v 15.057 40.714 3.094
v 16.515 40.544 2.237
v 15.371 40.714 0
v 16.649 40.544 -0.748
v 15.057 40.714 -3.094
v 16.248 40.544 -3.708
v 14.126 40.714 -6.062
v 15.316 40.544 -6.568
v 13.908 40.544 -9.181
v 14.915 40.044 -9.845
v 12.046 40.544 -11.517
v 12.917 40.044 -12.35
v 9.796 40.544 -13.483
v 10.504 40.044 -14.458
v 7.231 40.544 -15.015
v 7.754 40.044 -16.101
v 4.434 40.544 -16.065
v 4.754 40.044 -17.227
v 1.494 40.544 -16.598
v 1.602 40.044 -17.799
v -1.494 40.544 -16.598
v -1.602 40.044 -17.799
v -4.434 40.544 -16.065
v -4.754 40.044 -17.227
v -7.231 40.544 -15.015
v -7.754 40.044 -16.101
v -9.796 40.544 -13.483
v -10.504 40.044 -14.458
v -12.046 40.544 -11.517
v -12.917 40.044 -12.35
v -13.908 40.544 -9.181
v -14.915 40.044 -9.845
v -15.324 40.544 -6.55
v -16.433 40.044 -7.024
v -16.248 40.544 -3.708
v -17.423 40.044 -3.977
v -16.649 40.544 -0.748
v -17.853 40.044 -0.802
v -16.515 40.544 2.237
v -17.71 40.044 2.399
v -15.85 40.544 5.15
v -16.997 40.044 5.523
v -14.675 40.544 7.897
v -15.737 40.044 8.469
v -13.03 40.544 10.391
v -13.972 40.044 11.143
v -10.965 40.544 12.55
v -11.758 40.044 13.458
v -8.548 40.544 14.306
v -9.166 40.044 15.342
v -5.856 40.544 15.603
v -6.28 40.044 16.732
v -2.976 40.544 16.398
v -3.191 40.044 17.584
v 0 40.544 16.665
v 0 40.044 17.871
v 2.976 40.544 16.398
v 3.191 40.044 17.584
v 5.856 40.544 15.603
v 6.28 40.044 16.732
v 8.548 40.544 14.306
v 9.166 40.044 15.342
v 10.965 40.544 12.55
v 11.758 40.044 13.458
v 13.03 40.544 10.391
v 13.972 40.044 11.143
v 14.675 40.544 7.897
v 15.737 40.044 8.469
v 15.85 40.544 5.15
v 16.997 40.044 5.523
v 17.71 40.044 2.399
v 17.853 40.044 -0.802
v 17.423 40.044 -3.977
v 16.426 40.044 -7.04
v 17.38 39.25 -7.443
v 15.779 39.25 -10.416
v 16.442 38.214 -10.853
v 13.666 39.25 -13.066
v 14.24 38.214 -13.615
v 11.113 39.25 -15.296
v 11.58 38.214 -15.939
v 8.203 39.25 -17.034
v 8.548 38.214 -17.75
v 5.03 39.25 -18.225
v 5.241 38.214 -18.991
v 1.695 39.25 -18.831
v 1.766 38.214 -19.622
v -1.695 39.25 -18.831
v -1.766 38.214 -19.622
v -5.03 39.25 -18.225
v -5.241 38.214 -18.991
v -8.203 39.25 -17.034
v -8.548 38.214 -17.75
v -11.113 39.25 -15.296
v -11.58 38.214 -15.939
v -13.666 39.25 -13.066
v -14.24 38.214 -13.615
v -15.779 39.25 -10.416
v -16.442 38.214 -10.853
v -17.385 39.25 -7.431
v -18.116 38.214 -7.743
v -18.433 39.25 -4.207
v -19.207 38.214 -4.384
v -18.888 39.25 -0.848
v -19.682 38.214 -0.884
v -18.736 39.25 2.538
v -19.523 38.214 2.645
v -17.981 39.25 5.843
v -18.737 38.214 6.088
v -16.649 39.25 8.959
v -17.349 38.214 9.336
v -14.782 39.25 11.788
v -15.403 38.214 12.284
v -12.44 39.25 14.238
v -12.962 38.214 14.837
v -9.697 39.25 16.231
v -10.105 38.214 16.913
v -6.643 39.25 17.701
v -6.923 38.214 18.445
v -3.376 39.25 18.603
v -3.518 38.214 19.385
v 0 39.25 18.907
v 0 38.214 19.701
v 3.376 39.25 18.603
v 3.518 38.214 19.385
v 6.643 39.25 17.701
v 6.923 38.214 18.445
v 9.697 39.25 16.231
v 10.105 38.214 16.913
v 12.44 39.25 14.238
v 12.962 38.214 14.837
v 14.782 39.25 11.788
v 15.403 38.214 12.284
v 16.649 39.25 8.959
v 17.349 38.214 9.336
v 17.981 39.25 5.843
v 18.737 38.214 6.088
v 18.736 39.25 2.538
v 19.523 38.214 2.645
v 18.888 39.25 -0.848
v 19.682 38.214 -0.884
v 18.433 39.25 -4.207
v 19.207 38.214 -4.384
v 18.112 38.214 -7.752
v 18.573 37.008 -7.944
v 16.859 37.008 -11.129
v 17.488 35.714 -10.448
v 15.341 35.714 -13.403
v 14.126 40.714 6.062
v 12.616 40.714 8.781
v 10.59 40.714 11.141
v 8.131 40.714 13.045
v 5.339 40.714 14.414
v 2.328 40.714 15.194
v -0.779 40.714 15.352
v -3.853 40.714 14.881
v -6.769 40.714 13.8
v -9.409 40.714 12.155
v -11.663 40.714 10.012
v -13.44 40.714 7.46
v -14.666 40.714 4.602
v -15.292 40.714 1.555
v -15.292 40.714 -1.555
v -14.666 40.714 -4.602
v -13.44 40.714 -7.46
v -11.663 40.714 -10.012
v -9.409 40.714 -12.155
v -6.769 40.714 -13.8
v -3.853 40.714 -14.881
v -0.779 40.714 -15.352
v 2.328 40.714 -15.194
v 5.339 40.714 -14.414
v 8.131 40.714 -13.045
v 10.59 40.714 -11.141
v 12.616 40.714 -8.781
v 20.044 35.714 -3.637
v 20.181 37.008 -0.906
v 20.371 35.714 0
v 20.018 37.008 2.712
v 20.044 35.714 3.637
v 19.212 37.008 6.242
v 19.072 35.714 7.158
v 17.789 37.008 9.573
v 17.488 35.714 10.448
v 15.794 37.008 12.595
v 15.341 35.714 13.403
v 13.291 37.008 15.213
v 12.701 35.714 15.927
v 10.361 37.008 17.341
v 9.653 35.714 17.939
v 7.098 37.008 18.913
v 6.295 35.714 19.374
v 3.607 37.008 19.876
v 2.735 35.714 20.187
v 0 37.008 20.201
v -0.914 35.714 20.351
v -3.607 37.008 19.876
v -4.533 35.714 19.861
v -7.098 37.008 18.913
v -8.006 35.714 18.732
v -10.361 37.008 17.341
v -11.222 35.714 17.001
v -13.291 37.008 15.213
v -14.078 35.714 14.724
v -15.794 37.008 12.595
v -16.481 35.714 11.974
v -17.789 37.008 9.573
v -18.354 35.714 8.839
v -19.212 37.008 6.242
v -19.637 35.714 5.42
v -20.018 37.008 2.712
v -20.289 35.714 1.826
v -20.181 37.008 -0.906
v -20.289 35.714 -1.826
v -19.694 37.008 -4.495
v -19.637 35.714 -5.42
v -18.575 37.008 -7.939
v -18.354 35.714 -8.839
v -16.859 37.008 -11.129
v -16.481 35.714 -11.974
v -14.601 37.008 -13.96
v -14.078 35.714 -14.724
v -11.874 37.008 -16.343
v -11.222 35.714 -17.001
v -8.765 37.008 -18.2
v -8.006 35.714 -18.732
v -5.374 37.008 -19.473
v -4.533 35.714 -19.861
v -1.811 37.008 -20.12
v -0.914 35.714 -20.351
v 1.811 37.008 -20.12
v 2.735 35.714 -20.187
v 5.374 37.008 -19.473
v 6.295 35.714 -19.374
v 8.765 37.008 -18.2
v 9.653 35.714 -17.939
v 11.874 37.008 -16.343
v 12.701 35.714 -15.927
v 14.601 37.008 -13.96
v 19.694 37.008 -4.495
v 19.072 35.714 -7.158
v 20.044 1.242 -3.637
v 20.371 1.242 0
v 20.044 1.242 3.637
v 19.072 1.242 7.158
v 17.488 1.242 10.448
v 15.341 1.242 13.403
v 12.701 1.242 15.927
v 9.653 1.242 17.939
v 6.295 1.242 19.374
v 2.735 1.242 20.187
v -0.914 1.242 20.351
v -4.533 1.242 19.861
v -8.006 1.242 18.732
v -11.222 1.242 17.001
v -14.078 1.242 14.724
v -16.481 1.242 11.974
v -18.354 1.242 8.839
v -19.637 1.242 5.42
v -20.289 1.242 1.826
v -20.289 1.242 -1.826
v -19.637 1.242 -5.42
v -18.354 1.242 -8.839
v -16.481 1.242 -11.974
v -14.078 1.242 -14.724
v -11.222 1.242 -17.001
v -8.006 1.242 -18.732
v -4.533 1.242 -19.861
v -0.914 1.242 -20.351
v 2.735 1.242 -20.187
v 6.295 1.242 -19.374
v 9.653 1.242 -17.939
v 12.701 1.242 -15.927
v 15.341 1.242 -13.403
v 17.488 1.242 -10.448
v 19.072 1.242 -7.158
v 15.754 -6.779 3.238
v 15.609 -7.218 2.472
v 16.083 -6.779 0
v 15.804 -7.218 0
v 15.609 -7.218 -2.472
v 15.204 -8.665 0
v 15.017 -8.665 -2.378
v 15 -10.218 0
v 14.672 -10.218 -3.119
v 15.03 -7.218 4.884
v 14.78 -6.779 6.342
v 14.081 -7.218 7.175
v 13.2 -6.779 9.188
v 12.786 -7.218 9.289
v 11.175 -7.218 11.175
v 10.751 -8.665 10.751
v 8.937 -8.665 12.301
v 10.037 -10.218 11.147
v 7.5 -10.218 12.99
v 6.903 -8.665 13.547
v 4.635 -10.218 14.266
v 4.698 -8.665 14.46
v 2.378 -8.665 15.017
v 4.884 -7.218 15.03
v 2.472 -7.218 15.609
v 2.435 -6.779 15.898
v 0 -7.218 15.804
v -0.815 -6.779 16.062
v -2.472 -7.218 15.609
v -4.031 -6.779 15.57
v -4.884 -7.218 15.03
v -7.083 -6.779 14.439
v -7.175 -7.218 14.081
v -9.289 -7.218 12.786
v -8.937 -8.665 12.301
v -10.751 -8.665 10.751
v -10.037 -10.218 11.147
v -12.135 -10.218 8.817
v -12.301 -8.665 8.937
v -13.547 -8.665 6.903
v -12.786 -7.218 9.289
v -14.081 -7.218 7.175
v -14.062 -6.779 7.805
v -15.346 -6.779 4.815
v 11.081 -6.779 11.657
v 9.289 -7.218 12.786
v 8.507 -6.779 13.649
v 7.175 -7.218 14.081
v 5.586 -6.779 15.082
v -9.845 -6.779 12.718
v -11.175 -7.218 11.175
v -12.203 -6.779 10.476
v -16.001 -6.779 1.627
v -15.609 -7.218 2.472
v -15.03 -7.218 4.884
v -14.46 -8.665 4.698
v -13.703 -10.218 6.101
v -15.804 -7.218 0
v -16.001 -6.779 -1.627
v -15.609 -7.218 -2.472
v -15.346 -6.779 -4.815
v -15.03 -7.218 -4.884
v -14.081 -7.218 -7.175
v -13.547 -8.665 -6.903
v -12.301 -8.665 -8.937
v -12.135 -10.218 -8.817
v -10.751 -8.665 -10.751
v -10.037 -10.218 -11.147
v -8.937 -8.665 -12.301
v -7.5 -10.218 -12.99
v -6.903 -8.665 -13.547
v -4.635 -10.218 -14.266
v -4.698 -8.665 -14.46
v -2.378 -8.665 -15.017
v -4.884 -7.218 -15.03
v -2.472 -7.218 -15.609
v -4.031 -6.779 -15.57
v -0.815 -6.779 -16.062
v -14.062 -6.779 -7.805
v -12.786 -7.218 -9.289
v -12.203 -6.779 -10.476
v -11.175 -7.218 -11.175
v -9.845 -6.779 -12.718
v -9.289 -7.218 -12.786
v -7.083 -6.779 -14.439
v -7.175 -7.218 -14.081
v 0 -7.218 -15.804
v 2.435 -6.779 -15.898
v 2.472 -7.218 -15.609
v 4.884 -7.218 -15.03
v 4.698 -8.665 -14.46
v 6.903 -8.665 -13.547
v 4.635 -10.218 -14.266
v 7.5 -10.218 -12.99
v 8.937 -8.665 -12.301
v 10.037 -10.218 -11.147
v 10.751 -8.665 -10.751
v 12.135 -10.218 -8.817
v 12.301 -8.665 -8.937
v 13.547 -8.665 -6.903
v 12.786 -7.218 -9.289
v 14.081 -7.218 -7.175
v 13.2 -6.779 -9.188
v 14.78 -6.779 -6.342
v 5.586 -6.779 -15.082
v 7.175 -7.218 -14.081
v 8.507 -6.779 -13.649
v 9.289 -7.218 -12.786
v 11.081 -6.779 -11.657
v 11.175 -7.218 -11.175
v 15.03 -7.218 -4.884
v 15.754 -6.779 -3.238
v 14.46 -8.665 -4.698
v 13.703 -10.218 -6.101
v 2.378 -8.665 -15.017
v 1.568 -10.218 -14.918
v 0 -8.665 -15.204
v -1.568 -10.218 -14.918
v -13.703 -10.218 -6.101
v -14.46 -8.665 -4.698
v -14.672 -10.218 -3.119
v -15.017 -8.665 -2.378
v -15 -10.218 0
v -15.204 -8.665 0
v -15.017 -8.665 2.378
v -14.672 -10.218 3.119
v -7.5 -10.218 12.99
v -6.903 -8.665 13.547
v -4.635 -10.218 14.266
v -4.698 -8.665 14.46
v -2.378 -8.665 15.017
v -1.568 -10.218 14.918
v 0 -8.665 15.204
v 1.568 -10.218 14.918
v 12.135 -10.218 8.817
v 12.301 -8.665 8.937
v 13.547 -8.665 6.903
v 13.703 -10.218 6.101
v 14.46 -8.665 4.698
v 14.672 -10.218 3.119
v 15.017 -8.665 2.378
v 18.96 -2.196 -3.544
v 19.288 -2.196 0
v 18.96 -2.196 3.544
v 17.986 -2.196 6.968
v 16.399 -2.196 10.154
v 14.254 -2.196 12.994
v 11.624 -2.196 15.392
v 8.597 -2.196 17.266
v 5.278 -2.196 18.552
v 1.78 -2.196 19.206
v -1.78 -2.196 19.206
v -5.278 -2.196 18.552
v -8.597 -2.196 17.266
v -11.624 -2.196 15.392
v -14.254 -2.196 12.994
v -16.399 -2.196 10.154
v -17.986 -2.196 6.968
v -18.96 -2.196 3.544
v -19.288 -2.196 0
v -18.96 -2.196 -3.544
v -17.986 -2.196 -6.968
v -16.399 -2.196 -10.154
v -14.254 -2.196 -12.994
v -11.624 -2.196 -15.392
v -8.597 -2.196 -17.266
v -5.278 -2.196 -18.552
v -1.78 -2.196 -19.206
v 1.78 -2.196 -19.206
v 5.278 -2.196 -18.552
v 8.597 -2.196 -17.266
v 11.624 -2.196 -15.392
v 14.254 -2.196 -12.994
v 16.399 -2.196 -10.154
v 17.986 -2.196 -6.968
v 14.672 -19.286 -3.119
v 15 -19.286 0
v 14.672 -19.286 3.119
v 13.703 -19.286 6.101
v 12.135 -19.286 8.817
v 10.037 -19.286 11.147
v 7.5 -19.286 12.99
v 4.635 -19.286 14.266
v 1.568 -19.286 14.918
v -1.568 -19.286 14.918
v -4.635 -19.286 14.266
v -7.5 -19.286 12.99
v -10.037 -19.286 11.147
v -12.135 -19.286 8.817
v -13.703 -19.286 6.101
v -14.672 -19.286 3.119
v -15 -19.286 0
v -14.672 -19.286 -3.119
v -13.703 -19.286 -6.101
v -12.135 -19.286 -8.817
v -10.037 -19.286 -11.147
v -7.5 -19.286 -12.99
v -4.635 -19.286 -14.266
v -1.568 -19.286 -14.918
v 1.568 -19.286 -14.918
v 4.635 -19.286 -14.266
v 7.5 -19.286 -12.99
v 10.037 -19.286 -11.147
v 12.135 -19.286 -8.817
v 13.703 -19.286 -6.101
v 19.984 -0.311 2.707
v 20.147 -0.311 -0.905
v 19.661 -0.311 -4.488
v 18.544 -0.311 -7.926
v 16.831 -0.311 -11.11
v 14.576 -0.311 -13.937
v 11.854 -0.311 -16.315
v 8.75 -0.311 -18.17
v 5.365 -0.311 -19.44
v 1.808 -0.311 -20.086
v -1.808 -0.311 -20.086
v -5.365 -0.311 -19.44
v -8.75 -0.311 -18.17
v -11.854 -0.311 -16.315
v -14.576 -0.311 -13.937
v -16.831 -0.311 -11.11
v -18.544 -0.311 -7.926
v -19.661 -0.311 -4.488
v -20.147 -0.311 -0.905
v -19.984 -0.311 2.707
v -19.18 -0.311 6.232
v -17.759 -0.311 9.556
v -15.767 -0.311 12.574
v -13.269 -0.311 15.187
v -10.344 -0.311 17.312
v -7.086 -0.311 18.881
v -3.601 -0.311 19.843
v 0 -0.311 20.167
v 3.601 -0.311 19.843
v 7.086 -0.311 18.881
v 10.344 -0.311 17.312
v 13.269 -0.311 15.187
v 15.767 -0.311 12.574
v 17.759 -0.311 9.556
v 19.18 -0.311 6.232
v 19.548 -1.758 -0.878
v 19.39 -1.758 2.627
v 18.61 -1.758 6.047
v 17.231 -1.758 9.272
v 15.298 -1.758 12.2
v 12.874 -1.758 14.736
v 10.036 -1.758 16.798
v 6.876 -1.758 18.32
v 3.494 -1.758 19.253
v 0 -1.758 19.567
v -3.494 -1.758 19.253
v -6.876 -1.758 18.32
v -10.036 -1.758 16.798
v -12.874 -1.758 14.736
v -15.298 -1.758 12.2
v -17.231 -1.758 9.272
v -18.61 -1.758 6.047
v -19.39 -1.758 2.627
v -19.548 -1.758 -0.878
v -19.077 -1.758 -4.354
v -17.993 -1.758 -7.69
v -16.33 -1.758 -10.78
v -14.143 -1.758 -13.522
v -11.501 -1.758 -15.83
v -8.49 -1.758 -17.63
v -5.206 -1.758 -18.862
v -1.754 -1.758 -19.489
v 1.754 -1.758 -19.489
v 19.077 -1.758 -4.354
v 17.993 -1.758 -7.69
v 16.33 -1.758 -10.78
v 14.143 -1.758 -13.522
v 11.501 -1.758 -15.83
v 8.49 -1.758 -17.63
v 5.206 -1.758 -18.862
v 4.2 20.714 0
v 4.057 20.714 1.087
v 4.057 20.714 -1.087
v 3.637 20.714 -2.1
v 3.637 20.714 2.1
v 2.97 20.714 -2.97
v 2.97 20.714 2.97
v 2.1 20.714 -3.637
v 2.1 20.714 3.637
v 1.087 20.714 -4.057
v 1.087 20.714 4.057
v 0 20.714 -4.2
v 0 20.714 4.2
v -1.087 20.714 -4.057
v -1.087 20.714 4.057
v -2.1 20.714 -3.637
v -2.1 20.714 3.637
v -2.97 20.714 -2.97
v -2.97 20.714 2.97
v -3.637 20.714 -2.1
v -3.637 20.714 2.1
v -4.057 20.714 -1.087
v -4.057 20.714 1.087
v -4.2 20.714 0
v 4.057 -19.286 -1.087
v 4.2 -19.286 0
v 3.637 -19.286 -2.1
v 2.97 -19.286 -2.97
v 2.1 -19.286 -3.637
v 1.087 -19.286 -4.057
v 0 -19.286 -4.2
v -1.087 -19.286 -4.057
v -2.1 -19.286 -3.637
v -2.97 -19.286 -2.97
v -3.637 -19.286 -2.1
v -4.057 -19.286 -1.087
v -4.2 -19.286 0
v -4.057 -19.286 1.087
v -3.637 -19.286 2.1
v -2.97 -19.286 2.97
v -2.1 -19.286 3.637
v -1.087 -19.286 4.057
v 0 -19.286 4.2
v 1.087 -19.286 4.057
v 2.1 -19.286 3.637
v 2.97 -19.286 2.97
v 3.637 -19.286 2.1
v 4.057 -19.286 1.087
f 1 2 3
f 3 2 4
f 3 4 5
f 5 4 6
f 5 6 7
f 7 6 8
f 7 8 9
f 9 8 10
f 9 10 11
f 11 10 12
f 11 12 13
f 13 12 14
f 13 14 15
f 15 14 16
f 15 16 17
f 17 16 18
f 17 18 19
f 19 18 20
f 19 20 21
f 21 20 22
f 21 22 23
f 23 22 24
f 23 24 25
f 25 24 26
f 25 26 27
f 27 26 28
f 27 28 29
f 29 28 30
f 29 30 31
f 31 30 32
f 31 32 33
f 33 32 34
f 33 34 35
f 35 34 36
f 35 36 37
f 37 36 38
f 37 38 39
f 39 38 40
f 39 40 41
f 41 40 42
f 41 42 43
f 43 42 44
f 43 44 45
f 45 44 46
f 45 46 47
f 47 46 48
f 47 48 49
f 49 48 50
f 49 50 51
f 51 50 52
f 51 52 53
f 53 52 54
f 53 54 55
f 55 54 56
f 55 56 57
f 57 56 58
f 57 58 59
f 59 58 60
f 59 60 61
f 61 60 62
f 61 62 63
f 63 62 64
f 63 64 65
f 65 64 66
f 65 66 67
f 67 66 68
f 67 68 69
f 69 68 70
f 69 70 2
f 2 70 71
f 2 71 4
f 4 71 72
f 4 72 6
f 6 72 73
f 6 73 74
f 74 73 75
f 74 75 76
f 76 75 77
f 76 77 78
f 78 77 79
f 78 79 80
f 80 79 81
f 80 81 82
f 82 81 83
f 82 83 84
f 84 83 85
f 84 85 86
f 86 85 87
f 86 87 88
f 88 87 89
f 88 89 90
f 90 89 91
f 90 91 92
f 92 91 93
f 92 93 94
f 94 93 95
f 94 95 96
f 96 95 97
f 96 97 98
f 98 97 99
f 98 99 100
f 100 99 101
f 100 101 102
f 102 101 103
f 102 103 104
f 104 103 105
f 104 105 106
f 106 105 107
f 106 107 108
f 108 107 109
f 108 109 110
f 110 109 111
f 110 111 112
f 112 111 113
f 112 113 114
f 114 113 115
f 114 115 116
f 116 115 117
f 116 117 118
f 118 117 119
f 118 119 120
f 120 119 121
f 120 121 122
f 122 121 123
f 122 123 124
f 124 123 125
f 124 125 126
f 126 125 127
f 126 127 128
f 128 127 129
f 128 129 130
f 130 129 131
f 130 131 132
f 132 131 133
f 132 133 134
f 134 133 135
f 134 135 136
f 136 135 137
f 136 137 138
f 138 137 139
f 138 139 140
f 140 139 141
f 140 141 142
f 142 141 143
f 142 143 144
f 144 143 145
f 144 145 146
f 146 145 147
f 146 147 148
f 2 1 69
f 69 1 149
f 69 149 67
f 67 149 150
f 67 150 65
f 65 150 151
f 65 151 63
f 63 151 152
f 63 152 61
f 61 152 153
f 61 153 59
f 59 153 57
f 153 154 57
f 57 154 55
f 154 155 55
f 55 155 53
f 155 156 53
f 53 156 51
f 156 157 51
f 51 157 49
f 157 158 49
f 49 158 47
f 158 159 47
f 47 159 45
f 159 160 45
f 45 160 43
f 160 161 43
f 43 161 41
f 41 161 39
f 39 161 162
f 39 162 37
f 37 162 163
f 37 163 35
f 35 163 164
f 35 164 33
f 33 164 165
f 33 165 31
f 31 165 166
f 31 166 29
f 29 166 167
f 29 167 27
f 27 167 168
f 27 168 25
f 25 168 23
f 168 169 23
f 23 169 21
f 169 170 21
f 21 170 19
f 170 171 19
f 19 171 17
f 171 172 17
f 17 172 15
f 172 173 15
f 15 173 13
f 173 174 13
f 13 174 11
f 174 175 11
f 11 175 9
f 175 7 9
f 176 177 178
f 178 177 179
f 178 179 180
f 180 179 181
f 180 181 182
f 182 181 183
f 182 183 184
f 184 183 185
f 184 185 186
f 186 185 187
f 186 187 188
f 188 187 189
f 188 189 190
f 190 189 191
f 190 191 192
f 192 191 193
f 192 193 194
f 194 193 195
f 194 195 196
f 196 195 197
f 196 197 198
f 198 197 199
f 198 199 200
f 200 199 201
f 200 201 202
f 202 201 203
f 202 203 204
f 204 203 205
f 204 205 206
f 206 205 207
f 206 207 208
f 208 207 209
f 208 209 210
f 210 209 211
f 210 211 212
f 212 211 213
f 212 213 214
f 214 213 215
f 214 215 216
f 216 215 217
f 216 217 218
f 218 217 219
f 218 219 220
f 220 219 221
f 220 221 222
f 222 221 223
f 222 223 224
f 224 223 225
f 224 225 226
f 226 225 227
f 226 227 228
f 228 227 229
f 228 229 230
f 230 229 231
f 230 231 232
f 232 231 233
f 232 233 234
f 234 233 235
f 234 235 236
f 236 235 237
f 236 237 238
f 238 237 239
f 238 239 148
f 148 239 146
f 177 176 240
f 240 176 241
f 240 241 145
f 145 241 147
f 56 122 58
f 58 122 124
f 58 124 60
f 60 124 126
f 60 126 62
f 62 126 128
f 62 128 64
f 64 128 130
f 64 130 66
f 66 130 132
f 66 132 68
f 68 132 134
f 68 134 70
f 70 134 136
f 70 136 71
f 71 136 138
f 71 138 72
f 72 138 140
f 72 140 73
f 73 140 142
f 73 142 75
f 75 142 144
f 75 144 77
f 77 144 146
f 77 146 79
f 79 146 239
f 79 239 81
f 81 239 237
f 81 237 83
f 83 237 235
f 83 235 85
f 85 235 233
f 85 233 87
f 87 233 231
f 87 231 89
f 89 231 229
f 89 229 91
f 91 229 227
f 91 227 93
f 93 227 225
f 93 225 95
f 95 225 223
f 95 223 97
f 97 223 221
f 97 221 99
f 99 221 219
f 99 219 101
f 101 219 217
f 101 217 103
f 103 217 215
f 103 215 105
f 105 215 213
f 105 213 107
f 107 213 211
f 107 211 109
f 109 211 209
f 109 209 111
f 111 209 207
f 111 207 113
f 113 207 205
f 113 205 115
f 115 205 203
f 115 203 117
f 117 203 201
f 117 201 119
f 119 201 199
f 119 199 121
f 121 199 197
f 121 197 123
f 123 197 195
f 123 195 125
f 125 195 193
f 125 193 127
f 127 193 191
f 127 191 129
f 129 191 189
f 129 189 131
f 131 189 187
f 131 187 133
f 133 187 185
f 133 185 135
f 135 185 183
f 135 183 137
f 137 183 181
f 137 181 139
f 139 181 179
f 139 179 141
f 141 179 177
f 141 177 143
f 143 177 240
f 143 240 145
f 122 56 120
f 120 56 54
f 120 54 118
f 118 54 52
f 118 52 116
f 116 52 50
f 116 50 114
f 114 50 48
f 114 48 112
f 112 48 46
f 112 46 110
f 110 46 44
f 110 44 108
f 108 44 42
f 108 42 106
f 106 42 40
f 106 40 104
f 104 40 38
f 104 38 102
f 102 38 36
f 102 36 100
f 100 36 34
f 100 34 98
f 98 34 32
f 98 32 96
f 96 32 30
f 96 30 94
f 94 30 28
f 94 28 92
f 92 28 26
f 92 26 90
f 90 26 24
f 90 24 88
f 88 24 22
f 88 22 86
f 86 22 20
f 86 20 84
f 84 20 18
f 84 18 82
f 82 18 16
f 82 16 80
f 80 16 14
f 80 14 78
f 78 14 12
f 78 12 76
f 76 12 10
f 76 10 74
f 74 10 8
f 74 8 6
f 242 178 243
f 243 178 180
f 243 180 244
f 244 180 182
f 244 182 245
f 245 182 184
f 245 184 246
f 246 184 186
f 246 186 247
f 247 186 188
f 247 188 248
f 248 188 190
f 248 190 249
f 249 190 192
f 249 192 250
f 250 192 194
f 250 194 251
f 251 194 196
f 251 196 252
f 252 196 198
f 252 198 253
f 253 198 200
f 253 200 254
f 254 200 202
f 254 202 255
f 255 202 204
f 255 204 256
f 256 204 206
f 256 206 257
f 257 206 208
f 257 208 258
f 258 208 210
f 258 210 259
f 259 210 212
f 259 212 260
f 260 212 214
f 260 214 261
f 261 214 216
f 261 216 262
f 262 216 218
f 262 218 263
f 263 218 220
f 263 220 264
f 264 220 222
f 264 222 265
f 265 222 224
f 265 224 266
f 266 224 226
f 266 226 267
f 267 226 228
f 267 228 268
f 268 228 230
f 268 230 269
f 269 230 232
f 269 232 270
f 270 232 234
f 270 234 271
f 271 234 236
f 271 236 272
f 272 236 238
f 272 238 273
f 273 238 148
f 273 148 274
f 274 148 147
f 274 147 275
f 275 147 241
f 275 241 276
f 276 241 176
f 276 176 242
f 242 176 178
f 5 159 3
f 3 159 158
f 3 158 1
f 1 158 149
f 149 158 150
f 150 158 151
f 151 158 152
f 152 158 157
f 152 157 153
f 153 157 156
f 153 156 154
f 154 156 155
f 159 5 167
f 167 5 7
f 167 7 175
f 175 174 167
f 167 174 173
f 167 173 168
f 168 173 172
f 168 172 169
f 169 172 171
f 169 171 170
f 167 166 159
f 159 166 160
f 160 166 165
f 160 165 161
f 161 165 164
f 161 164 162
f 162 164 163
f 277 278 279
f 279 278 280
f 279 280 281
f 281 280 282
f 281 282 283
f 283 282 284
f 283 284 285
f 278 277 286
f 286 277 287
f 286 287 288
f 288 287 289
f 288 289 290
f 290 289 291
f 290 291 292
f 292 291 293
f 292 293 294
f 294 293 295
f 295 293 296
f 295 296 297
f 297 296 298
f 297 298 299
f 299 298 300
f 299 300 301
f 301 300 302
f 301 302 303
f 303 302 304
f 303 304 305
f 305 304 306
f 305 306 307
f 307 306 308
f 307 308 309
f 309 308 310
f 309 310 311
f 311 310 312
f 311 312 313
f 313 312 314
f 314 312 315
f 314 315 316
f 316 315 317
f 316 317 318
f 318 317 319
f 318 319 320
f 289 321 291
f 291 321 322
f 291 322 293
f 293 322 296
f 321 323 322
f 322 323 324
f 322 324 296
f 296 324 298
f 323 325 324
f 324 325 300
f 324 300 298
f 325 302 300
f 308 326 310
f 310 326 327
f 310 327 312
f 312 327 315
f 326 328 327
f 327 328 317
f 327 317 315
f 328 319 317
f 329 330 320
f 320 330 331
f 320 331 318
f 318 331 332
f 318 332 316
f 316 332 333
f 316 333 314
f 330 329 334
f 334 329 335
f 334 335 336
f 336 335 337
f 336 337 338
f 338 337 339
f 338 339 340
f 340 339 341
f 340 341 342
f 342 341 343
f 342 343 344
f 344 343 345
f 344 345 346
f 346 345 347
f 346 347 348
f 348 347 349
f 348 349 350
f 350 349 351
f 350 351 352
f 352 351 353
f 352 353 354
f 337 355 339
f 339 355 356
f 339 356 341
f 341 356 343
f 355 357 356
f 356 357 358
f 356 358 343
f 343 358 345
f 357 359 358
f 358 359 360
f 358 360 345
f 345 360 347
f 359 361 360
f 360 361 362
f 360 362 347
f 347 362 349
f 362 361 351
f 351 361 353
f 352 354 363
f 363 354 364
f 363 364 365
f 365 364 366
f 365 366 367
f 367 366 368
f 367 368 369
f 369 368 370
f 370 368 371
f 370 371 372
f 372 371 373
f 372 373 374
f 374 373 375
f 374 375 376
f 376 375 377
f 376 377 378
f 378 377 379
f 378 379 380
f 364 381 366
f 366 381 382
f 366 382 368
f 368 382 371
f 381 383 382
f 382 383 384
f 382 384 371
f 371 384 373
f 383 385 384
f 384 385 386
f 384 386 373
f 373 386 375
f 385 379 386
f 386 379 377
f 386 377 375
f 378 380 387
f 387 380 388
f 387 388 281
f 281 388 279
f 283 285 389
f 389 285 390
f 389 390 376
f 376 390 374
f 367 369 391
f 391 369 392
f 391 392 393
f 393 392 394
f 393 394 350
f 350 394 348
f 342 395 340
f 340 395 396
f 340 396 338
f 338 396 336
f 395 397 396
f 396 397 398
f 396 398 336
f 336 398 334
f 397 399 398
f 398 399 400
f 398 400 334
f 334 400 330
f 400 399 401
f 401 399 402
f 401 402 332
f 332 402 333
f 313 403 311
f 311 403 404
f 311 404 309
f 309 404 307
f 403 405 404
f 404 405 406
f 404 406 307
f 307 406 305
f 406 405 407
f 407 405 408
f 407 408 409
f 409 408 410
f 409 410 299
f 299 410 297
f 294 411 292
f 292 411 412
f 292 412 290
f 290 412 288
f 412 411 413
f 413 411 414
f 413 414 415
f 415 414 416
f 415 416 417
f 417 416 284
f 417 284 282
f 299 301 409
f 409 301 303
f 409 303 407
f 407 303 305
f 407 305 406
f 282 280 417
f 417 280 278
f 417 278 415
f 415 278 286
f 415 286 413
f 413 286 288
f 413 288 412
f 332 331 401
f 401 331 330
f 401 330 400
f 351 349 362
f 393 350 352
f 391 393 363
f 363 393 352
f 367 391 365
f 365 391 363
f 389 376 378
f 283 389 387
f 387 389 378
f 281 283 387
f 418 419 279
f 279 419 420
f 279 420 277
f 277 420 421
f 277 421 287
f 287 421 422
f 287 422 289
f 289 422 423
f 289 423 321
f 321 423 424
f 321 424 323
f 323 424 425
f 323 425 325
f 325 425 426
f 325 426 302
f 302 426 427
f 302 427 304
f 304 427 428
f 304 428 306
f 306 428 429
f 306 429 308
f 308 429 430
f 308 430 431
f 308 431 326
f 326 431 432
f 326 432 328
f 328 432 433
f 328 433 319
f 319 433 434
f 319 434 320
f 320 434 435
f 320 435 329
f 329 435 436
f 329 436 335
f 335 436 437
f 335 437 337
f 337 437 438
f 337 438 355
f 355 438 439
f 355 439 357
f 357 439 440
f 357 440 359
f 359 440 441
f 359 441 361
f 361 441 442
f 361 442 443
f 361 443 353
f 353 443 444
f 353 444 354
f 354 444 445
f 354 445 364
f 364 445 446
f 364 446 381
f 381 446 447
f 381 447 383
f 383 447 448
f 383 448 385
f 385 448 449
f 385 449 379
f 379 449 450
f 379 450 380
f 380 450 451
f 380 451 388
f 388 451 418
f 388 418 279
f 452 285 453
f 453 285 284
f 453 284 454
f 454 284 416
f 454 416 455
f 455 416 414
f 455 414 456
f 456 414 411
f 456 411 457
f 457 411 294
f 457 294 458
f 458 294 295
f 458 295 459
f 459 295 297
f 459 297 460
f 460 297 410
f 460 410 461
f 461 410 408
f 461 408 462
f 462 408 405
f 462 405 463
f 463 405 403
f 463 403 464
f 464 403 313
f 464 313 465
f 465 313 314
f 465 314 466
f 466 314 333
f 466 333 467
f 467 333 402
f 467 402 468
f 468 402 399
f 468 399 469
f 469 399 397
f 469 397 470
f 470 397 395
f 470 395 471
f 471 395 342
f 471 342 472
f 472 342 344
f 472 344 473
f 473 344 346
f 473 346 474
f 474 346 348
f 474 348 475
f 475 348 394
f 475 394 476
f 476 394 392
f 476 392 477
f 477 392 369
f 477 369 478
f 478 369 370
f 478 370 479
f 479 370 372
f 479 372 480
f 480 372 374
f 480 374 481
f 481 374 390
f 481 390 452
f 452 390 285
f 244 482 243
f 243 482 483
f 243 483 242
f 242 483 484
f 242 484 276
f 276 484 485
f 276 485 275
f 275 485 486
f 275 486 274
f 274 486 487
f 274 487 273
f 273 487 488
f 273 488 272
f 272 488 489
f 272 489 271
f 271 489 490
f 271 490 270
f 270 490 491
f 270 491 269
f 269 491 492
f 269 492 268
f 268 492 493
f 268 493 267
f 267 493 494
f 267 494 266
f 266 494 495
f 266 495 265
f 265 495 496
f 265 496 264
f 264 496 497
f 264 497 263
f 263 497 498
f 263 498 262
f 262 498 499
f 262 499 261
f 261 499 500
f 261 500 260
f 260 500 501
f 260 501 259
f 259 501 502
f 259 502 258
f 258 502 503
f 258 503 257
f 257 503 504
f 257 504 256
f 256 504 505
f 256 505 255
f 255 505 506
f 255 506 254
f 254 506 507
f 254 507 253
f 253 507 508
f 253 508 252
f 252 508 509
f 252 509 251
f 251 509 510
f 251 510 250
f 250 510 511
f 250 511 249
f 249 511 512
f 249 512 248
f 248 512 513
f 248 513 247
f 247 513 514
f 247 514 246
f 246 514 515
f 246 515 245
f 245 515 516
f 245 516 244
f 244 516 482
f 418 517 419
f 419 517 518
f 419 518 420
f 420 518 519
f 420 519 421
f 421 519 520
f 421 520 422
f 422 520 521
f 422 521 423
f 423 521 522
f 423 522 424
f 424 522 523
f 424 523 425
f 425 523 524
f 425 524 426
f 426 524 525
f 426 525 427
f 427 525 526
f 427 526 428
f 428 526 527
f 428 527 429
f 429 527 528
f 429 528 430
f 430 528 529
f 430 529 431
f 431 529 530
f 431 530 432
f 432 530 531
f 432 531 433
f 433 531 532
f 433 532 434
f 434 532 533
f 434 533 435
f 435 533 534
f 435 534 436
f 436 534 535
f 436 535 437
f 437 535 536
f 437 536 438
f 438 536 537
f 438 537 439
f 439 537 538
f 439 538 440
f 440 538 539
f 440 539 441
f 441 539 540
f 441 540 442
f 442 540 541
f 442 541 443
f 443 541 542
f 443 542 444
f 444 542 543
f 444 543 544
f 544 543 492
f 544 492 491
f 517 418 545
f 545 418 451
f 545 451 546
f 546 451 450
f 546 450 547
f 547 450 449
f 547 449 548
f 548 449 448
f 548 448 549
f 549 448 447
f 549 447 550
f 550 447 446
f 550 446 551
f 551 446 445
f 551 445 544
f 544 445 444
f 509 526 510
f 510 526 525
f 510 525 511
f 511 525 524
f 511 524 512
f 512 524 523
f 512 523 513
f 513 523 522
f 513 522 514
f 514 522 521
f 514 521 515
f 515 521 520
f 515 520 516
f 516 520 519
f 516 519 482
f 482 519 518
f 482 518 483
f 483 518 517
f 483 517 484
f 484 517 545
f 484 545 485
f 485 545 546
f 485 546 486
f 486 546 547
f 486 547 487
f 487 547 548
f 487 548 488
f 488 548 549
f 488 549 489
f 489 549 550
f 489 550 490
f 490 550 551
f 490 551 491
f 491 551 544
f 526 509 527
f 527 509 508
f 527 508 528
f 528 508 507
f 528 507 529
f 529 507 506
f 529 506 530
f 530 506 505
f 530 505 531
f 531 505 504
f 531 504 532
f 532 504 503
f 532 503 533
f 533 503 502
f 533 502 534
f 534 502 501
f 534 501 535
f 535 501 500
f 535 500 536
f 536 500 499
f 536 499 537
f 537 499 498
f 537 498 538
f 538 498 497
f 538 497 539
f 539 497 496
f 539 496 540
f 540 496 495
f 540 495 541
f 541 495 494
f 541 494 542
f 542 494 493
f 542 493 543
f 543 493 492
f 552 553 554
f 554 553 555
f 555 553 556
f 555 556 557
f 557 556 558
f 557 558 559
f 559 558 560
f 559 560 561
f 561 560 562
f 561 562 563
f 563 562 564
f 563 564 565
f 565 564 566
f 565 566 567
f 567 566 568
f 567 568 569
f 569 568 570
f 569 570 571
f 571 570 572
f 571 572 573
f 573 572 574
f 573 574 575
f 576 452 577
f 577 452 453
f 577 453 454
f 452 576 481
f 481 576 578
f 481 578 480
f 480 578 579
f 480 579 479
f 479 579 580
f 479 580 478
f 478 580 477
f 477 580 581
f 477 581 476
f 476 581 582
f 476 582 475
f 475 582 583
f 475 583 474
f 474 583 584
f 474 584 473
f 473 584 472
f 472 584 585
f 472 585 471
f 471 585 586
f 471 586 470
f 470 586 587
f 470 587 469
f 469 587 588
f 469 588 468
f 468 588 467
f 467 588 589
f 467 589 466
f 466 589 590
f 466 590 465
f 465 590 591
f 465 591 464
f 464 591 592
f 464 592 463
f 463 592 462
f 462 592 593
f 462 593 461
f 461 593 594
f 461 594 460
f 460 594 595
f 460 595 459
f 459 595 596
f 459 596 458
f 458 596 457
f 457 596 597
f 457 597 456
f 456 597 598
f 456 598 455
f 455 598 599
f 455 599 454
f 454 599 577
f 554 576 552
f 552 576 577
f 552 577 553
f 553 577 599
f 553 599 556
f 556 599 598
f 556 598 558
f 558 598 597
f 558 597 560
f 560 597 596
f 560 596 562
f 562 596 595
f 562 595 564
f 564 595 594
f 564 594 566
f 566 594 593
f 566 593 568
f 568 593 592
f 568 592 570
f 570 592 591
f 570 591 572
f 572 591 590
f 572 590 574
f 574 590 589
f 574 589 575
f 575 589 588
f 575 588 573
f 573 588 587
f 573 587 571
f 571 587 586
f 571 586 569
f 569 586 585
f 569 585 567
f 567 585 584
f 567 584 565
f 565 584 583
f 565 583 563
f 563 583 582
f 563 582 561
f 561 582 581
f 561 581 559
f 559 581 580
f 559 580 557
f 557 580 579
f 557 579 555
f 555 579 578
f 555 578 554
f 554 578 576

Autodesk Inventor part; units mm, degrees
ref_plane "YZ Plane" through (0, 0, 0) normal (1, 0, 0) x (0, 1, 0)
ref_plane "XZ Plane" through (0, 0, 0) normal (0, 1, 0) x (-1, 0, 0)
ref_plane "XY Plane" through (0, 0, 0) normal (0, 0, 1) x (1, 0, 0)
sketch "Sketch2" plane through (0, 0, 0) normal (0, 0, 1) x (1, 0, 0)
  line L0 (4.2, -19.2857) -> (4.2, 20.7143)
  line L1 (4.2, -19.2857) -> (15, -19.2857)
  line L2 (15, -19.2857) -> (15, -8.3281)
  line L3 (15, -8.3281) -> (20.3713, -0.6476)
  line L4 (20.3713, -0.6476) -> (20.3713, 40.7143)
  line L5 (20.3713, 40.7143) -> (0, 40.7143)
  line L6 (0, 40.7143) -> (0, 20.7143)
  line L7 (0, 20.7143) -> (4.2, 20.7143)
  point P0 (0, 0)
  dimension "d3" = 4.2
  dimension "d4" = 10.8
  dimension "d5" = 60
  dimension "d6" = 20
revolve "Revolution1" add sketch "Sketch2" angle 360 about axis through (0, 40.7143, 0) along (0, -1, 0)
fillet "Fillet1" radius 6 2 edges at (-20.3713, -0.6476, 0) (-15, -8.3281, 0)
fillet "Fillet2" radius 5 1 edges at (-20.3713, 40.7143, 0)
properties part number "Top Knob"
